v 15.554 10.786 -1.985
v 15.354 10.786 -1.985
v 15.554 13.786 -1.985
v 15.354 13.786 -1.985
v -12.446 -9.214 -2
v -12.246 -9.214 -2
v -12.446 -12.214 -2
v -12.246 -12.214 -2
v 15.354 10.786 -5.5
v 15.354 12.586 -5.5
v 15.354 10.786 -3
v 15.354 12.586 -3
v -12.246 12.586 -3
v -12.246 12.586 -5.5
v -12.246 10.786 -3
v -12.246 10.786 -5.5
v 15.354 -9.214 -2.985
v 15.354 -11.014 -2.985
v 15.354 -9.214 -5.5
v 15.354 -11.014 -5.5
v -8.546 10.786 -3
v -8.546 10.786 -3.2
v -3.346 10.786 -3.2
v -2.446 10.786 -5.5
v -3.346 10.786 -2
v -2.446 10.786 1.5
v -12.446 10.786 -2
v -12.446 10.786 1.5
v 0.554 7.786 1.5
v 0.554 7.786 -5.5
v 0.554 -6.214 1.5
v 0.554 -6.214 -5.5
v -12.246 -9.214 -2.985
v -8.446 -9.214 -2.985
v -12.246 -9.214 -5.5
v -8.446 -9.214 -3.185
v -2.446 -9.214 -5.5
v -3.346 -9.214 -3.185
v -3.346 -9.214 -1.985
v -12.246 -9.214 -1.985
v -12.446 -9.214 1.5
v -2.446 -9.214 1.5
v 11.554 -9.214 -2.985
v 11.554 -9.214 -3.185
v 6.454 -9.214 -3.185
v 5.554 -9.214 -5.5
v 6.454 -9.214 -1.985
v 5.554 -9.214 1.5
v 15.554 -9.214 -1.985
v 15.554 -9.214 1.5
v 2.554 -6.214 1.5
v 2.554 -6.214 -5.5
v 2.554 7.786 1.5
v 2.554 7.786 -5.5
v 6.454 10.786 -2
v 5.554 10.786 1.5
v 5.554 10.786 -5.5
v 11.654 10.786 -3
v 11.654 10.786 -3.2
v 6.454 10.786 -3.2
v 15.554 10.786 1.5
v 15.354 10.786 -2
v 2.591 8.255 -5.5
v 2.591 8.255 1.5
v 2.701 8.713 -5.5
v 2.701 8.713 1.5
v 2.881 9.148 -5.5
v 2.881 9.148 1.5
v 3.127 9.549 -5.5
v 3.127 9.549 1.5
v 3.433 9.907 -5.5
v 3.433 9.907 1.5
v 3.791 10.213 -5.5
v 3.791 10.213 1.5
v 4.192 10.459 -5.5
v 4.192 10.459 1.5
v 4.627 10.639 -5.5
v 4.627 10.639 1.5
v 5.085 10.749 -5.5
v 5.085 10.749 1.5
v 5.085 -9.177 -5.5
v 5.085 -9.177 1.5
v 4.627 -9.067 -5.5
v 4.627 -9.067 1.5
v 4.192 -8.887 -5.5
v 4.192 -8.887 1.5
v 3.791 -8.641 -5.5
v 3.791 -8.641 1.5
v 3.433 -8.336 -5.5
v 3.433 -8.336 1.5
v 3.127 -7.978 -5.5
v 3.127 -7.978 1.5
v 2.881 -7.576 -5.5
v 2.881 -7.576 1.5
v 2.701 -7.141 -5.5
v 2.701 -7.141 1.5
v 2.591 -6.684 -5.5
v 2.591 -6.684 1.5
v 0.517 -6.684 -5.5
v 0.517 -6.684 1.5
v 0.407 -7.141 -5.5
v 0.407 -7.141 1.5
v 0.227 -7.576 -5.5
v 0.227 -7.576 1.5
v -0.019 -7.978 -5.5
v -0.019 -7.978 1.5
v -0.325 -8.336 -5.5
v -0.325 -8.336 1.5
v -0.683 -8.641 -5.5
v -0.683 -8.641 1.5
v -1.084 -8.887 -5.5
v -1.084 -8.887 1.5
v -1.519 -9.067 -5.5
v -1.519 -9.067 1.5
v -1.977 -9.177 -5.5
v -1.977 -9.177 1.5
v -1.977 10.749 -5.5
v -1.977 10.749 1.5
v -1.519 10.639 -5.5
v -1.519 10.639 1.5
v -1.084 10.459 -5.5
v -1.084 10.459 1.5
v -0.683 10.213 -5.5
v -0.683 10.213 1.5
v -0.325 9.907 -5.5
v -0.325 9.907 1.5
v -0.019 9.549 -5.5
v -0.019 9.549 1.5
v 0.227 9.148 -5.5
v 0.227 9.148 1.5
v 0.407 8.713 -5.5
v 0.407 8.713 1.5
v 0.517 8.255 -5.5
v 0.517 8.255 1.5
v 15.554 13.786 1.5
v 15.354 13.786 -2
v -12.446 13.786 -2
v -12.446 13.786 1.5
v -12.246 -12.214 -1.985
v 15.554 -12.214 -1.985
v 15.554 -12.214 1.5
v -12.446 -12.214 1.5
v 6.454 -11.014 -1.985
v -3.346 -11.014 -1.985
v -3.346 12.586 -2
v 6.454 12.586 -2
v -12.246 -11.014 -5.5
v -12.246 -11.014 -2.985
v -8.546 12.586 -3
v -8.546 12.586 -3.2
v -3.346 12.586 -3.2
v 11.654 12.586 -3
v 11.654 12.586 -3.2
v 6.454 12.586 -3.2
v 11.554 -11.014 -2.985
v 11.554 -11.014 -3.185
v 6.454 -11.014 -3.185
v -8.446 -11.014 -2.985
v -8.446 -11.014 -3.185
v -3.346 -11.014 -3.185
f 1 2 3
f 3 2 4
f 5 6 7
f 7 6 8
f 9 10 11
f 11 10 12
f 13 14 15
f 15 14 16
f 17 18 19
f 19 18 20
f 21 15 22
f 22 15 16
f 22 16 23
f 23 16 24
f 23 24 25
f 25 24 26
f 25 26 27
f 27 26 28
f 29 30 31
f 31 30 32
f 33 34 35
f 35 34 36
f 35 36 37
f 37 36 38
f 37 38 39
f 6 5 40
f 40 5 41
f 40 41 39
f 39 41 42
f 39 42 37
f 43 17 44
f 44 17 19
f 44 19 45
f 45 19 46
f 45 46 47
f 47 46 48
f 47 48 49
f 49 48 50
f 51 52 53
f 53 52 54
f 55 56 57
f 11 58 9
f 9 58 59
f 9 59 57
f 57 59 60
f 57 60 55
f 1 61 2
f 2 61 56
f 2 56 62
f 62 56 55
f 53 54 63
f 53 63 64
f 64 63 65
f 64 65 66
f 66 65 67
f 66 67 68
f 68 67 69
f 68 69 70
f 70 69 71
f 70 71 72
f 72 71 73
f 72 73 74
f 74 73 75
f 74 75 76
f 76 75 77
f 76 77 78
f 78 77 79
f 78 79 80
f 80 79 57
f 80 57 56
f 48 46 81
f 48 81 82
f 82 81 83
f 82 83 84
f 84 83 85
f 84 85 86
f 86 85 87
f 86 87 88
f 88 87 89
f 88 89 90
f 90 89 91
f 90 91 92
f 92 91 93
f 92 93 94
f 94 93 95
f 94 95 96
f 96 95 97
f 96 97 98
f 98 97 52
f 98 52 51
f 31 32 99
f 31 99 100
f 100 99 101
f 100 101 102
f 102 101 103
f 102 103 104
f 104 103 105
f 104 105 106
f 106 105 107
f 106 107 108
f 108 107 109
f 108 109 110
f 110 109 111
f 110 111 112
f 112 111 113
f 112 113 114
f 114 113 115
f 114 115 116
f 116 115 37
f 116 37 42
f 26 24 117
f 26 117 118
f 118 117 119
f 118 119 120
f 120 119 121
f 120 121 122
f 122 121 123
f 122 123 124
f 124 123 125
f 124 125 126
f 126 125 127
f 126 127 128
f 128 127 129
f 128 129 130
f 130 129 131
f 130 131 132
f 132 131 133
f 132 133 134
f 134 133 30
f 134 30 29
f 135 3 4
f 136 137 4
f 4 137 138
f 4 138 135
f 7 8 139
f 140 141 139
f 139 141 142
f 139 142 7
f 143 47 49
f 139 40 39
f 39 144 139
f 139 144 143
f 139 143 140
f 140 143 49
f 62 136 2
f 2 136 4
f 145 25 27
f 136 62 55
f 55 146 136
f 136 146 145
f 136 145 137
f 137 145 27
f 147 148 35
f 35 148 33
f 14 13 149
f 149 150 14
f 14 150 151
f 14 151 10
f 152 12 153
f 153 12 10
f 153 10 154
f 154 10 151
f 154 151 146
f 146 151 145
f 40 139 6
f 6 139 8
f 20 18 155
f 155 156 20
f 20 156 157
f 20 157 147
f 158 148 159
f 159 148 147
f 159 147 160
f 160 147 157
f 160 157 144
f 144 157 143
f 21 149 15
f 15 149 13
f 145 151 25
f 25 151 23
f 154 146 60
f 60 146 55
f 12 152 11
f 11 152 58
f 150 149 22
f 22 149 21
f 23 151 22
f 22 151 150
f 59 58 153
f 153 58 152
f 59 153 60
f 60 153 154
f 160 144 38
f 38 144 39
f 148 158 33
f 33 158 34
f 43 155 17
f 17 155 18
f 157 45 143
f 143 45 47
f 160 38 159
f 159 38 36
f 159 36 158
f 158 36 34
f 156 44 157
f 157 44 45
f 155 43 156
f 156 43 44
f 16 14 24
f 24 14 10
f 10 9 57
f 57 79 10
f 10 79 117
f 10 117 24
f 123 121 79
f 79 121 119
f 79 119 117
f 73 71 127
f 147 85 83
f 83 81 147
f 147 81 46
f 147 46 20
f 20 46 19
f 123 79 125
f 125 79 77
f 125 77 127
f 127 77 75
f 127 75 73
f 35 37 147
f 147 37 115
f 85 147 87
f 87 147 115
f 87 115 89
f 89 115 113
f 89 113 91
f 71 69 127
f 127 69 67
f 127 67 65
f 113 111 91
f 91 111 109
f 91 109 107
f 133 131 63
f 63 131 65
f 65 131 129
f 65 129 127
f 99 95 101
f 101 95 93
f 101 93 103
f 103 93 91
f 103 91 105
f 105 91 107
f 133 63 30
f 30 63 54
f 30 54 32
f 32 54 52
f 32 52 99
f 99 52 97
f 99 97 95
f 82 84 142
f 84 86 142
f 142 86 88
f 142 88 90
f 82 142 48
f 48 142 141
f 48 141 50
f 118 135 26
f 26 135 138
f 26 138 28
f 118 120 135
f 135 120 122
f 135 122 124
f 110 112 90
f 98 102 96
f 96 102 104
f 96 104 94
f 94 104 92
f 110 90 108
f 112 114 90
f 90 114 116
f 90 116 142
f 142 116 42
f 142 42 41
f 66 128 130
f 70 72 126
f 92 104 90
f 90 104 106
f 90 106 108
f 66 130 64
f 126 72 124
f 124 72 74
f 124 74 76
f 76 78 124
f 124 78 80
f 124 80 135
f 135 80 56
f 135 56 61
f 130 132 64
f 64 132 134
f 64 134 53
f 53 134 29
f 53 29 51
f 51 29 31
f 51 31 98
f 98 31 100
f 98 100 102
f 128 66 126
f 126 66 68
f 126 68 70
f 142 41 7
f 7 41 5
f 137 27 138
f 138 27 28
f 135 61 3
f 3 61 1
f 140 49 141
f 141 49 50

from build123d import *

# Parameters (mm, degrees)
SKETCH1_W           = 30
SKETCH1_H           = 22
BOSS_EXTRUDE1_DEPTH = 2
SKETCH2_W           = 13
SKETCH2_H           = 20
CUT_EXTRUDE1_DEPTH  = 2
FILLET1_R           = 3
SKETCH3_W           = 30
SKETCH3_H           = 22
BOSS_EXTRUDE2_DEPTH = 20
SKETCH4_W           = 30
SKETCH4_H           = 22
BOSS_EXTRUDE3_DEPTH = 2
SKETCH5_W           = 30
SKETCH5_H           = 22
BOSS_EXTRUDE4_DEPTH = 2
SKETCH6_W           = 18.015144258
SKETCH6_H           = 26
CUT_EXTRUDE2_DEPTH  = 1.2
SKETCH7_W           = 18
SKETCH7_H           = 26
CUT_EXTRUDE3_DEPTH  = 1.2
SKETCH8_W           = 27.6
SKETCH8_H           = 18
CUT_EXTRUDE4_DEPTH  = 1.2
SKETCH9_W           = 27.6
SKETCH9_H           = 18.015144258
CUT_EXTRUDE5_DEPTH  = 1.2
SKETCH10_W          = 8.9
SKETCH10_H          = 1
CUT_EXTRUDE7_DEPTH  = 1.8
SKETCH12_W          = 5.2
SKETCH12_H          = 1.2
CUT_EXTRUDE8_DEPTH  = 1.8
CUT_EXTRUDE9_DEPTH  = 3.2
SKETCH14_W          = 2.8
SKETCH14_H          = 1
CUT_EXTRUDE10_DEPTH = 5
SKETCH15_W          = 8.9
SKETCH15_H          = 1
CUT_EXTRUDE11_DEPTH = 5
SKETCH16_W          = 5.1
SKETCH16_H          = 1.2
CUT_EXTRUDE12_DEPTH = 5
SKETCH17_W          = 27.6
SKETCH17_H          = 14.5
CUT_EXTRUDE13_DEPTH = 23.6
CUT_EXTRUDE14_DEPTH = 5
SKETCH19_W          = 2.8
SKETCH19_H          = 20
CUT_EXTRUDE16_DEPTH = 3.5
SKETCH20_W          = 8.574892863
SKETCH20_H          = 20
SKETCH20_W_2        = 12.614156469
CUT_EXTRUDE18_DEPTH = 5
SKETCH24_W          = 0.5
SKETCH24_H          = 26
CUT_EXTRUDE19_DEPTH = 100
SKETCH25_W          = 4.142834468
SKETCH25_H          = 28.533772401
SKETCH25_W_2        = 4.453547053
SKETCH25_H_2        = 29.155197571
CUT_EXTRUDE20_DEPTH = 3.5


with BuildPart() as part:
    # Sketch1 → Boss-Extrude1 (new body)
    with BuildSketch(Plane.XY):
        with Locations((1.554069904, 0.785714286)):
            Rectangle(SKETCH1_W, SKETCH1_H)
    extrude(amount=BOSS_EXTRUDE1_DEPTH)

    # Sketch2 → Cut-Extrude1 (cut)
    with BuildSketch(Plane.XY.offset(2)):
        with Locations((-5.945930096, 0.785714286)):
            Rectangle(SKETCH2_W, SKETCH2_H)
        with Locations((9.054069904, 0.785714286)):
            Rectangle(SKETCH2_W, SKETCH2_H)
    extrude(amount=-CUT_EXTRUDE1_DEPTH, mode=Mode.SUBTRACT)

    # Fillet1
    fillet1_edges = [part.edges().sort_by_distance(p)[0] for p in [
        (-12.445930096, -9.214285714, 1),
        (-12.445930096, 10.785714286, 1),
        (0.554069904, 10.785714286, 1),
        (0.554069904, -9.214285714, 1),
        (15.554069904, 10.785714286, 1),
        (15.554069904, -9.214285714, 1),
        (2.554069904, -9.214285714, 1),
        (2.554069904, 10.785714286, 1),
    ]]
    fillet(fillet1_edges, radius=FILLET1_R)

    # Sketch3 → Boss-Extrude2 (add)
    with BuildSketch(Plane(origin=(0, 0, 0), x_dir=(-1, 0, 0), z_dir=(0, 0, -1))):
        with Locations((-1.554069904, 0.785714286)):
            Rectangle(SKETCH3_W, SKETCH3_H)
    extrude(amount=BOSS_EXTRUDE2_DEPTH)

    # Sketch4 → Boss-Extrude3 (add)
    with BuildSketch(Plane(origin=(0, 11.785714286, 0), x_dir=(1, 0, 0), z_dir=(0, 1, 0))):
        with Locations((1.554069904, 9)):
            Rectangle(SKETCH4_W, SKETCH4_H)
    extrude(amount=BOSS_EXTRUDE3_DEPTH)

    # Sketch5 → Boss-Extrude4 (add)
    with BuildSketch(Plane(origin=(0, -10.214285714, 0), x_dir=(-1, 0, 0), z_dir=(0, -1, 0))):
        with Locations((-1.554069904, 9)):
            Rectangle(SKETCH5_W, SKETCH5_H)
    extrude(amount=BOSS_EXTRUDE4_DEPTH)

    # Sketch6 → Cut-Extrude2 (cut)
    with BuildSketch(Plane(origin=(16.554069904, 0, 0), x_dir=(0, 0, -1), z_dir=(1, 0, 0))):
        with Locations((10.992427871, 0.785714286)):
            Rectangle(SKETCH6_W, SKETCH6_H)
    extrude(amount=-CUT_EXTRUDE2_DEPTH, mode=Mode.SUBTRACT)

    # Sketch7 → Cut-Extrude3 (cut)
    with BuildSketch(Plane.ZY.offset(13.445930096)):
        with Locations((-11, 0.785714286)):
            Rectangle(SKETCH7_W, SKETCH7_H)
    extrude(amount=-CUT_EXTRUDE3_DEPTH, mode=Mode.SUBTRACT)

    # Sketch8 → Cut-Extrude4 (cut)
    with BuildSketch(Plane(origin=(0, 13.785714286, 0), x_dir=(1, 0, 0), z_dir=(0, 1, 0))):
        with Locations((1.554069904, 11)):
            Rectangle(SKETCH8_W, SKETCH8_H)
    extrude(amount=-CUT_EXTRUDE4_DEPTH, mode=Mode.SUBTRACT)

    # Sketch9 → Cut-Extrude5 (cut)
    with BuildSketch(Plane.XZ.offset(12.214285714)):
        with Locations((1.554069904, -10.992427871)):
            Rectangle(SKETCH9_W, SKETCH9_H)
    extrude(amount=-CUT_EXTRUDE5_DEPTH, mode=Mode.SUBTRACT)

    # Sketch10 → Cut-Extrude7 (cut)
    with BuildSketch(Plane(origin=(0, 12.585714286, 0), x_dir=(1, 0, 0), z_dir=(0, 1, 0))):
        with Locations((-7.795930096, 2.5)):
            Rectangle(SKETCH10_W, SKETCH10_H)
        with Locations((10.904069904, 2.5)):
            Rectangle(SKETCH10_W, SKETCH10_H)
    extrude(amount=-CUT_EXTRUDE7_DEPTH, mode=Mode.SUBTRACT)

    # Sketch12 → Cut-Extrude8 (cut)
    with BuildSketch(Plane(origin=(0, 12.585714286, 0), x_dir=(1, 0, 0), z_dir=(0, 1, 0))):
        with Locations((-5.945930096, 2.6)):
            Rectangle(SKETCH12_W, SKETCH12_H)
        with Locations((9.054069904, 2.6)):
            Rectangle(SKETCH12_W, SKETCH12_H)
    extrude(amount=-CUT_EXTRUDE8_DEPTH, mode=Mode.SUBTRACT)

    # Sketch13 → Cut-Extrude9 (cut)
    with BuildSketch(Plane.XY):
        with BuildLine():
            Line((-9.445930096, 10.785714286), (-2.445930096, 10.785714286))
            ThreePointArc((-2.445930096, 10.785714286), (-0.324609753, 9.907034629), (0.554069904, 7.785714286))
            Line((0.554069904, 7.785714286), (0.554069904, -6.214285714))
            ThreePointArc((0.554069904, -6.214285714), (-0.324609753, -8.335606058), (-2.445930096, -9.214285714))
            Line((-2.445930096, -9.214285714), (-9.445930096, -9.214285714))
            ThreePointArc((-9.445930096, -9.214285714), (-11.56725044, -8.335606058), (-12.445930096, -6.214285714))
            Line((-12.445930096, -6.214285714), (-12.445930096, 7.785714286))
            ThreePointArc((-12.445930096, 7.785714286), (-11.56725044, 9.907034629), (-9.445930096, 10.785714286))
        make_face()
        with BuildLine():
            Line((5.554069904, 10.785714286), (12.554069904, 10.785714286))
            ThreePointArc((12.554069904, 10.785714286), (14.675390247, 9.907034629), (15.554069904, 7.785714286))
            Line((15.554069904, 7.785714286), (15.554069904, -6.214285714))
            ThreePointArc((15.554069904, -6.214285714), (14.675390247, -8.335606058), (12.554069904, -9.214285714))
            Line((12.554069904, -9.214285714), (5.554069904, -9.214285714))
            ThreePointArc((5.554069904, -9.214285714), (3.43274956, -8.335606058), (2.554069904, -6.214285714))
            Line((2.554069904, -6.214285714), (2.554069904, 7.785714286))
            ThreePointArc((2.554069904, 7.785714286), (3.43274956, 9.907034629), (5.554069904, 10.785714286))
        make_face()
    extrude(amount=-CUT_EXTRUDE9_DEPTH, mode=Mode.SUBTRACT)

    # Sketch14 → Cut-Extrude10 (cut)
    with BuildSketch(Plane(origin=(0, 10.785714286, 0), x_dir=(1, 0, 0), z_dir=(0, 1, 0))):
        with Locations((13.954069904, 2.5)):
            Rectangle(SKETCH14_W, SKETCH14_H)
        with Locations((-10.845930096, 2.5)):
            Rectangle(SKETCH14_W, SKETCH14_H)
    extrude(amount=-CUT_EXTRUDE10_DEPTH, mode=Mode.SUBTRACT)

    # Sketch15 → Cut-Extrude11 (cut)
    with BuildSketch(Plane(origin=(0, -11.014285714, 0), x_dir=(-1, 0, 0), z_dir=(0, -1, 0))):
        with Locations((7.795930096, 2.484855742)):
            Rectangle(SKETCH15_W, SKETCH15_H)
        with Locations((-10.904069904, 2.484855742)):
            Rectangle(SKETCH15_W, SKETCH15_H)
    extrude(amount=-CUT_EXTRUDE11_DEPTH, mode=Mode.SUBTRACT)

    # Sketch16 → Cut-Extrude12 (cut)
    with BuildSketch(Plane(origin=(0, -11.014285714, 0), x_dir=(-1, 0, 0), z_dir=(0, -1, 0))):
        with Locations((5.895930096, 2.584855742)):
            Rectangle(SKETCH16_W, SKETCH16_H)
        with Locations((-9.004069904, 2.584855742)):
            Rectangle(SKETCH16_W, SKETCH16_H)
    extrude(amount=-CUT_EXTRUDE12_DEPTH, mode=Mode.SUBTRACT)

    # Sketch17 → Cut-Extrude13 (cut)
    with BuildSketch(Plane(origin=(0, 12.585714286, 0), x_dir=(1, 0, 0), z_dir=(0, 1, 0))):
        with Locations((1.554069904, 12.75)):
            Rectangle(SKETCH17_W, SKETCH17_H)
    extrude(amount=-CUT_EXTRUDE13_DEPTH, mode=Mode.SUBTRACT)

    # Sketch18 → Cut-Extrude14 (cut)
    with BuildSketch(Plane.XY.offset(-3.2)):
        with BuildLine():
            Line((-12.445930096, 7.785714286), (-12.445930096, -6.214285714))
            ThreePointArc((-12.445930096, -6.214285714), (-11.56725044, -8.335606058), (-9.445930096, -9.214285714))
            Line((-9.445930096, -9.214285714), (-2.445930096, -9.214285714))
            ThreePointArc((-2.445930096, -9.214285714), (-0.324609753, -8.335606058), (0.554069904, -6.214285714))
            Line((0.554069904, -6.214285714), (0.554069904, 7.785714286))
            ThreePointArc((0.554069904, 7.785714286), (-0.324609753, 9.907034629), (-2.445930096, 10.785714286))
            Line((-2.445930096, 10.785714286), (-9.445930096, 10.785714286))
            ThreePointArc((-9.445930096, 10.785714286), (-11.56725044, 9.907034629), (-12.445930096, 7.785714286))
        make_face()
        with BuildLine():
            Line((5.554069904, 10.785714286), (12.554069904, 10.785714286))
            ThreePointArc((12.554069904, 10.785714286), (14.675390247, 9.907034629), (15.554069904, 7.785714286))
            Line((15.554069904, 7.785714286), (15.554069904, -6.214285714))
            ThreePointArc((15.554069904, -6.214285714), (14.675390247, -8.335606058), (12.554069904, -9.214285714))
            Line((12.554069904, -9.214285714), (5.554069904, -9.214285714))
            ThreePointArc((5.554069904, -9.214285714), (3.43274956, -8.335606058), (2.554069904, -6.214285714))
            Line((2.554069904, -6.214285714), (2.554069904, 7.785714286))
            ThreePointArc((2.554069904, 7.785714286), (3.43274956, 9.907034629), (5.554069904, 10.785714286))
        make_face()
    extrude(amount=-CUT_EXTRUDE14_DEPTH, mode=Mode.SUBTRACT)

    # Sketch19 → Cut-Extrude16 (cut)
    with BuildSketch(Plane(origin=(0, 0, -5.5), x_dir=(-1, 0, 0), z_dir=(0, 0, -1))):
        with Locations((-13.954069904, 0.785714286)):
            Rectangle(SKETCH19_W, SKETCH19_H)
        with Locations((10.845930096, 0.785714286)):
            Rectangle(SKETCH19_W, SKETCH19_H)
    extrude(amount=-CUT_EXTRUDE16_DEPTH, mode=Mode.SUBTRACT)

    # Sketch20 → Cut-Extrude18 (cut)
    with BuildSketch(Plane.XY.offset(2)):
        with Locations((-13.733376528, 0.785714286)):
            Rectangle(SKETCH20_W, SKETCH20_H)
        with Locations((18.861148139, 0.785714286)):
            Rectangle(SKETCH20_W_2, SKETCH20_H)
    extrude(amount=-CUT_EXTRUDE18_DEPTH, mode=Mode.SUBTRACT)

    # Sketch24 → Cut-Extrude19 (cut)
    with BuildSketch(Plane.ZY.offset(13.445930096)):
        with Locations((1.75, 0.785714286)):
            Rectangle(SKETCH24_W, SKETCH24_H)
    extrude(amount=-CUT_EXTRUDE19_DEPTH, mode=Mode.SUBTRACT)

    # Sketch25 → Cut-Extrude20 (cut)
    with BuildSketch(Plane.XY.offset(1.5)):
        with Locations((-14.51734733, 1.251783163)):
            Rectangle(SKETCH25_W, SKETCH25_H)
        with Locations((17.78084343, 0.941070578)):
            Rectangle(SKETCH25_W_2, SKETCH25_H_2)
    extrude(amount=-CUT_EXTRUDE20_DEPTH, mode=Mode.SUBTRACT)


solid = part.part
